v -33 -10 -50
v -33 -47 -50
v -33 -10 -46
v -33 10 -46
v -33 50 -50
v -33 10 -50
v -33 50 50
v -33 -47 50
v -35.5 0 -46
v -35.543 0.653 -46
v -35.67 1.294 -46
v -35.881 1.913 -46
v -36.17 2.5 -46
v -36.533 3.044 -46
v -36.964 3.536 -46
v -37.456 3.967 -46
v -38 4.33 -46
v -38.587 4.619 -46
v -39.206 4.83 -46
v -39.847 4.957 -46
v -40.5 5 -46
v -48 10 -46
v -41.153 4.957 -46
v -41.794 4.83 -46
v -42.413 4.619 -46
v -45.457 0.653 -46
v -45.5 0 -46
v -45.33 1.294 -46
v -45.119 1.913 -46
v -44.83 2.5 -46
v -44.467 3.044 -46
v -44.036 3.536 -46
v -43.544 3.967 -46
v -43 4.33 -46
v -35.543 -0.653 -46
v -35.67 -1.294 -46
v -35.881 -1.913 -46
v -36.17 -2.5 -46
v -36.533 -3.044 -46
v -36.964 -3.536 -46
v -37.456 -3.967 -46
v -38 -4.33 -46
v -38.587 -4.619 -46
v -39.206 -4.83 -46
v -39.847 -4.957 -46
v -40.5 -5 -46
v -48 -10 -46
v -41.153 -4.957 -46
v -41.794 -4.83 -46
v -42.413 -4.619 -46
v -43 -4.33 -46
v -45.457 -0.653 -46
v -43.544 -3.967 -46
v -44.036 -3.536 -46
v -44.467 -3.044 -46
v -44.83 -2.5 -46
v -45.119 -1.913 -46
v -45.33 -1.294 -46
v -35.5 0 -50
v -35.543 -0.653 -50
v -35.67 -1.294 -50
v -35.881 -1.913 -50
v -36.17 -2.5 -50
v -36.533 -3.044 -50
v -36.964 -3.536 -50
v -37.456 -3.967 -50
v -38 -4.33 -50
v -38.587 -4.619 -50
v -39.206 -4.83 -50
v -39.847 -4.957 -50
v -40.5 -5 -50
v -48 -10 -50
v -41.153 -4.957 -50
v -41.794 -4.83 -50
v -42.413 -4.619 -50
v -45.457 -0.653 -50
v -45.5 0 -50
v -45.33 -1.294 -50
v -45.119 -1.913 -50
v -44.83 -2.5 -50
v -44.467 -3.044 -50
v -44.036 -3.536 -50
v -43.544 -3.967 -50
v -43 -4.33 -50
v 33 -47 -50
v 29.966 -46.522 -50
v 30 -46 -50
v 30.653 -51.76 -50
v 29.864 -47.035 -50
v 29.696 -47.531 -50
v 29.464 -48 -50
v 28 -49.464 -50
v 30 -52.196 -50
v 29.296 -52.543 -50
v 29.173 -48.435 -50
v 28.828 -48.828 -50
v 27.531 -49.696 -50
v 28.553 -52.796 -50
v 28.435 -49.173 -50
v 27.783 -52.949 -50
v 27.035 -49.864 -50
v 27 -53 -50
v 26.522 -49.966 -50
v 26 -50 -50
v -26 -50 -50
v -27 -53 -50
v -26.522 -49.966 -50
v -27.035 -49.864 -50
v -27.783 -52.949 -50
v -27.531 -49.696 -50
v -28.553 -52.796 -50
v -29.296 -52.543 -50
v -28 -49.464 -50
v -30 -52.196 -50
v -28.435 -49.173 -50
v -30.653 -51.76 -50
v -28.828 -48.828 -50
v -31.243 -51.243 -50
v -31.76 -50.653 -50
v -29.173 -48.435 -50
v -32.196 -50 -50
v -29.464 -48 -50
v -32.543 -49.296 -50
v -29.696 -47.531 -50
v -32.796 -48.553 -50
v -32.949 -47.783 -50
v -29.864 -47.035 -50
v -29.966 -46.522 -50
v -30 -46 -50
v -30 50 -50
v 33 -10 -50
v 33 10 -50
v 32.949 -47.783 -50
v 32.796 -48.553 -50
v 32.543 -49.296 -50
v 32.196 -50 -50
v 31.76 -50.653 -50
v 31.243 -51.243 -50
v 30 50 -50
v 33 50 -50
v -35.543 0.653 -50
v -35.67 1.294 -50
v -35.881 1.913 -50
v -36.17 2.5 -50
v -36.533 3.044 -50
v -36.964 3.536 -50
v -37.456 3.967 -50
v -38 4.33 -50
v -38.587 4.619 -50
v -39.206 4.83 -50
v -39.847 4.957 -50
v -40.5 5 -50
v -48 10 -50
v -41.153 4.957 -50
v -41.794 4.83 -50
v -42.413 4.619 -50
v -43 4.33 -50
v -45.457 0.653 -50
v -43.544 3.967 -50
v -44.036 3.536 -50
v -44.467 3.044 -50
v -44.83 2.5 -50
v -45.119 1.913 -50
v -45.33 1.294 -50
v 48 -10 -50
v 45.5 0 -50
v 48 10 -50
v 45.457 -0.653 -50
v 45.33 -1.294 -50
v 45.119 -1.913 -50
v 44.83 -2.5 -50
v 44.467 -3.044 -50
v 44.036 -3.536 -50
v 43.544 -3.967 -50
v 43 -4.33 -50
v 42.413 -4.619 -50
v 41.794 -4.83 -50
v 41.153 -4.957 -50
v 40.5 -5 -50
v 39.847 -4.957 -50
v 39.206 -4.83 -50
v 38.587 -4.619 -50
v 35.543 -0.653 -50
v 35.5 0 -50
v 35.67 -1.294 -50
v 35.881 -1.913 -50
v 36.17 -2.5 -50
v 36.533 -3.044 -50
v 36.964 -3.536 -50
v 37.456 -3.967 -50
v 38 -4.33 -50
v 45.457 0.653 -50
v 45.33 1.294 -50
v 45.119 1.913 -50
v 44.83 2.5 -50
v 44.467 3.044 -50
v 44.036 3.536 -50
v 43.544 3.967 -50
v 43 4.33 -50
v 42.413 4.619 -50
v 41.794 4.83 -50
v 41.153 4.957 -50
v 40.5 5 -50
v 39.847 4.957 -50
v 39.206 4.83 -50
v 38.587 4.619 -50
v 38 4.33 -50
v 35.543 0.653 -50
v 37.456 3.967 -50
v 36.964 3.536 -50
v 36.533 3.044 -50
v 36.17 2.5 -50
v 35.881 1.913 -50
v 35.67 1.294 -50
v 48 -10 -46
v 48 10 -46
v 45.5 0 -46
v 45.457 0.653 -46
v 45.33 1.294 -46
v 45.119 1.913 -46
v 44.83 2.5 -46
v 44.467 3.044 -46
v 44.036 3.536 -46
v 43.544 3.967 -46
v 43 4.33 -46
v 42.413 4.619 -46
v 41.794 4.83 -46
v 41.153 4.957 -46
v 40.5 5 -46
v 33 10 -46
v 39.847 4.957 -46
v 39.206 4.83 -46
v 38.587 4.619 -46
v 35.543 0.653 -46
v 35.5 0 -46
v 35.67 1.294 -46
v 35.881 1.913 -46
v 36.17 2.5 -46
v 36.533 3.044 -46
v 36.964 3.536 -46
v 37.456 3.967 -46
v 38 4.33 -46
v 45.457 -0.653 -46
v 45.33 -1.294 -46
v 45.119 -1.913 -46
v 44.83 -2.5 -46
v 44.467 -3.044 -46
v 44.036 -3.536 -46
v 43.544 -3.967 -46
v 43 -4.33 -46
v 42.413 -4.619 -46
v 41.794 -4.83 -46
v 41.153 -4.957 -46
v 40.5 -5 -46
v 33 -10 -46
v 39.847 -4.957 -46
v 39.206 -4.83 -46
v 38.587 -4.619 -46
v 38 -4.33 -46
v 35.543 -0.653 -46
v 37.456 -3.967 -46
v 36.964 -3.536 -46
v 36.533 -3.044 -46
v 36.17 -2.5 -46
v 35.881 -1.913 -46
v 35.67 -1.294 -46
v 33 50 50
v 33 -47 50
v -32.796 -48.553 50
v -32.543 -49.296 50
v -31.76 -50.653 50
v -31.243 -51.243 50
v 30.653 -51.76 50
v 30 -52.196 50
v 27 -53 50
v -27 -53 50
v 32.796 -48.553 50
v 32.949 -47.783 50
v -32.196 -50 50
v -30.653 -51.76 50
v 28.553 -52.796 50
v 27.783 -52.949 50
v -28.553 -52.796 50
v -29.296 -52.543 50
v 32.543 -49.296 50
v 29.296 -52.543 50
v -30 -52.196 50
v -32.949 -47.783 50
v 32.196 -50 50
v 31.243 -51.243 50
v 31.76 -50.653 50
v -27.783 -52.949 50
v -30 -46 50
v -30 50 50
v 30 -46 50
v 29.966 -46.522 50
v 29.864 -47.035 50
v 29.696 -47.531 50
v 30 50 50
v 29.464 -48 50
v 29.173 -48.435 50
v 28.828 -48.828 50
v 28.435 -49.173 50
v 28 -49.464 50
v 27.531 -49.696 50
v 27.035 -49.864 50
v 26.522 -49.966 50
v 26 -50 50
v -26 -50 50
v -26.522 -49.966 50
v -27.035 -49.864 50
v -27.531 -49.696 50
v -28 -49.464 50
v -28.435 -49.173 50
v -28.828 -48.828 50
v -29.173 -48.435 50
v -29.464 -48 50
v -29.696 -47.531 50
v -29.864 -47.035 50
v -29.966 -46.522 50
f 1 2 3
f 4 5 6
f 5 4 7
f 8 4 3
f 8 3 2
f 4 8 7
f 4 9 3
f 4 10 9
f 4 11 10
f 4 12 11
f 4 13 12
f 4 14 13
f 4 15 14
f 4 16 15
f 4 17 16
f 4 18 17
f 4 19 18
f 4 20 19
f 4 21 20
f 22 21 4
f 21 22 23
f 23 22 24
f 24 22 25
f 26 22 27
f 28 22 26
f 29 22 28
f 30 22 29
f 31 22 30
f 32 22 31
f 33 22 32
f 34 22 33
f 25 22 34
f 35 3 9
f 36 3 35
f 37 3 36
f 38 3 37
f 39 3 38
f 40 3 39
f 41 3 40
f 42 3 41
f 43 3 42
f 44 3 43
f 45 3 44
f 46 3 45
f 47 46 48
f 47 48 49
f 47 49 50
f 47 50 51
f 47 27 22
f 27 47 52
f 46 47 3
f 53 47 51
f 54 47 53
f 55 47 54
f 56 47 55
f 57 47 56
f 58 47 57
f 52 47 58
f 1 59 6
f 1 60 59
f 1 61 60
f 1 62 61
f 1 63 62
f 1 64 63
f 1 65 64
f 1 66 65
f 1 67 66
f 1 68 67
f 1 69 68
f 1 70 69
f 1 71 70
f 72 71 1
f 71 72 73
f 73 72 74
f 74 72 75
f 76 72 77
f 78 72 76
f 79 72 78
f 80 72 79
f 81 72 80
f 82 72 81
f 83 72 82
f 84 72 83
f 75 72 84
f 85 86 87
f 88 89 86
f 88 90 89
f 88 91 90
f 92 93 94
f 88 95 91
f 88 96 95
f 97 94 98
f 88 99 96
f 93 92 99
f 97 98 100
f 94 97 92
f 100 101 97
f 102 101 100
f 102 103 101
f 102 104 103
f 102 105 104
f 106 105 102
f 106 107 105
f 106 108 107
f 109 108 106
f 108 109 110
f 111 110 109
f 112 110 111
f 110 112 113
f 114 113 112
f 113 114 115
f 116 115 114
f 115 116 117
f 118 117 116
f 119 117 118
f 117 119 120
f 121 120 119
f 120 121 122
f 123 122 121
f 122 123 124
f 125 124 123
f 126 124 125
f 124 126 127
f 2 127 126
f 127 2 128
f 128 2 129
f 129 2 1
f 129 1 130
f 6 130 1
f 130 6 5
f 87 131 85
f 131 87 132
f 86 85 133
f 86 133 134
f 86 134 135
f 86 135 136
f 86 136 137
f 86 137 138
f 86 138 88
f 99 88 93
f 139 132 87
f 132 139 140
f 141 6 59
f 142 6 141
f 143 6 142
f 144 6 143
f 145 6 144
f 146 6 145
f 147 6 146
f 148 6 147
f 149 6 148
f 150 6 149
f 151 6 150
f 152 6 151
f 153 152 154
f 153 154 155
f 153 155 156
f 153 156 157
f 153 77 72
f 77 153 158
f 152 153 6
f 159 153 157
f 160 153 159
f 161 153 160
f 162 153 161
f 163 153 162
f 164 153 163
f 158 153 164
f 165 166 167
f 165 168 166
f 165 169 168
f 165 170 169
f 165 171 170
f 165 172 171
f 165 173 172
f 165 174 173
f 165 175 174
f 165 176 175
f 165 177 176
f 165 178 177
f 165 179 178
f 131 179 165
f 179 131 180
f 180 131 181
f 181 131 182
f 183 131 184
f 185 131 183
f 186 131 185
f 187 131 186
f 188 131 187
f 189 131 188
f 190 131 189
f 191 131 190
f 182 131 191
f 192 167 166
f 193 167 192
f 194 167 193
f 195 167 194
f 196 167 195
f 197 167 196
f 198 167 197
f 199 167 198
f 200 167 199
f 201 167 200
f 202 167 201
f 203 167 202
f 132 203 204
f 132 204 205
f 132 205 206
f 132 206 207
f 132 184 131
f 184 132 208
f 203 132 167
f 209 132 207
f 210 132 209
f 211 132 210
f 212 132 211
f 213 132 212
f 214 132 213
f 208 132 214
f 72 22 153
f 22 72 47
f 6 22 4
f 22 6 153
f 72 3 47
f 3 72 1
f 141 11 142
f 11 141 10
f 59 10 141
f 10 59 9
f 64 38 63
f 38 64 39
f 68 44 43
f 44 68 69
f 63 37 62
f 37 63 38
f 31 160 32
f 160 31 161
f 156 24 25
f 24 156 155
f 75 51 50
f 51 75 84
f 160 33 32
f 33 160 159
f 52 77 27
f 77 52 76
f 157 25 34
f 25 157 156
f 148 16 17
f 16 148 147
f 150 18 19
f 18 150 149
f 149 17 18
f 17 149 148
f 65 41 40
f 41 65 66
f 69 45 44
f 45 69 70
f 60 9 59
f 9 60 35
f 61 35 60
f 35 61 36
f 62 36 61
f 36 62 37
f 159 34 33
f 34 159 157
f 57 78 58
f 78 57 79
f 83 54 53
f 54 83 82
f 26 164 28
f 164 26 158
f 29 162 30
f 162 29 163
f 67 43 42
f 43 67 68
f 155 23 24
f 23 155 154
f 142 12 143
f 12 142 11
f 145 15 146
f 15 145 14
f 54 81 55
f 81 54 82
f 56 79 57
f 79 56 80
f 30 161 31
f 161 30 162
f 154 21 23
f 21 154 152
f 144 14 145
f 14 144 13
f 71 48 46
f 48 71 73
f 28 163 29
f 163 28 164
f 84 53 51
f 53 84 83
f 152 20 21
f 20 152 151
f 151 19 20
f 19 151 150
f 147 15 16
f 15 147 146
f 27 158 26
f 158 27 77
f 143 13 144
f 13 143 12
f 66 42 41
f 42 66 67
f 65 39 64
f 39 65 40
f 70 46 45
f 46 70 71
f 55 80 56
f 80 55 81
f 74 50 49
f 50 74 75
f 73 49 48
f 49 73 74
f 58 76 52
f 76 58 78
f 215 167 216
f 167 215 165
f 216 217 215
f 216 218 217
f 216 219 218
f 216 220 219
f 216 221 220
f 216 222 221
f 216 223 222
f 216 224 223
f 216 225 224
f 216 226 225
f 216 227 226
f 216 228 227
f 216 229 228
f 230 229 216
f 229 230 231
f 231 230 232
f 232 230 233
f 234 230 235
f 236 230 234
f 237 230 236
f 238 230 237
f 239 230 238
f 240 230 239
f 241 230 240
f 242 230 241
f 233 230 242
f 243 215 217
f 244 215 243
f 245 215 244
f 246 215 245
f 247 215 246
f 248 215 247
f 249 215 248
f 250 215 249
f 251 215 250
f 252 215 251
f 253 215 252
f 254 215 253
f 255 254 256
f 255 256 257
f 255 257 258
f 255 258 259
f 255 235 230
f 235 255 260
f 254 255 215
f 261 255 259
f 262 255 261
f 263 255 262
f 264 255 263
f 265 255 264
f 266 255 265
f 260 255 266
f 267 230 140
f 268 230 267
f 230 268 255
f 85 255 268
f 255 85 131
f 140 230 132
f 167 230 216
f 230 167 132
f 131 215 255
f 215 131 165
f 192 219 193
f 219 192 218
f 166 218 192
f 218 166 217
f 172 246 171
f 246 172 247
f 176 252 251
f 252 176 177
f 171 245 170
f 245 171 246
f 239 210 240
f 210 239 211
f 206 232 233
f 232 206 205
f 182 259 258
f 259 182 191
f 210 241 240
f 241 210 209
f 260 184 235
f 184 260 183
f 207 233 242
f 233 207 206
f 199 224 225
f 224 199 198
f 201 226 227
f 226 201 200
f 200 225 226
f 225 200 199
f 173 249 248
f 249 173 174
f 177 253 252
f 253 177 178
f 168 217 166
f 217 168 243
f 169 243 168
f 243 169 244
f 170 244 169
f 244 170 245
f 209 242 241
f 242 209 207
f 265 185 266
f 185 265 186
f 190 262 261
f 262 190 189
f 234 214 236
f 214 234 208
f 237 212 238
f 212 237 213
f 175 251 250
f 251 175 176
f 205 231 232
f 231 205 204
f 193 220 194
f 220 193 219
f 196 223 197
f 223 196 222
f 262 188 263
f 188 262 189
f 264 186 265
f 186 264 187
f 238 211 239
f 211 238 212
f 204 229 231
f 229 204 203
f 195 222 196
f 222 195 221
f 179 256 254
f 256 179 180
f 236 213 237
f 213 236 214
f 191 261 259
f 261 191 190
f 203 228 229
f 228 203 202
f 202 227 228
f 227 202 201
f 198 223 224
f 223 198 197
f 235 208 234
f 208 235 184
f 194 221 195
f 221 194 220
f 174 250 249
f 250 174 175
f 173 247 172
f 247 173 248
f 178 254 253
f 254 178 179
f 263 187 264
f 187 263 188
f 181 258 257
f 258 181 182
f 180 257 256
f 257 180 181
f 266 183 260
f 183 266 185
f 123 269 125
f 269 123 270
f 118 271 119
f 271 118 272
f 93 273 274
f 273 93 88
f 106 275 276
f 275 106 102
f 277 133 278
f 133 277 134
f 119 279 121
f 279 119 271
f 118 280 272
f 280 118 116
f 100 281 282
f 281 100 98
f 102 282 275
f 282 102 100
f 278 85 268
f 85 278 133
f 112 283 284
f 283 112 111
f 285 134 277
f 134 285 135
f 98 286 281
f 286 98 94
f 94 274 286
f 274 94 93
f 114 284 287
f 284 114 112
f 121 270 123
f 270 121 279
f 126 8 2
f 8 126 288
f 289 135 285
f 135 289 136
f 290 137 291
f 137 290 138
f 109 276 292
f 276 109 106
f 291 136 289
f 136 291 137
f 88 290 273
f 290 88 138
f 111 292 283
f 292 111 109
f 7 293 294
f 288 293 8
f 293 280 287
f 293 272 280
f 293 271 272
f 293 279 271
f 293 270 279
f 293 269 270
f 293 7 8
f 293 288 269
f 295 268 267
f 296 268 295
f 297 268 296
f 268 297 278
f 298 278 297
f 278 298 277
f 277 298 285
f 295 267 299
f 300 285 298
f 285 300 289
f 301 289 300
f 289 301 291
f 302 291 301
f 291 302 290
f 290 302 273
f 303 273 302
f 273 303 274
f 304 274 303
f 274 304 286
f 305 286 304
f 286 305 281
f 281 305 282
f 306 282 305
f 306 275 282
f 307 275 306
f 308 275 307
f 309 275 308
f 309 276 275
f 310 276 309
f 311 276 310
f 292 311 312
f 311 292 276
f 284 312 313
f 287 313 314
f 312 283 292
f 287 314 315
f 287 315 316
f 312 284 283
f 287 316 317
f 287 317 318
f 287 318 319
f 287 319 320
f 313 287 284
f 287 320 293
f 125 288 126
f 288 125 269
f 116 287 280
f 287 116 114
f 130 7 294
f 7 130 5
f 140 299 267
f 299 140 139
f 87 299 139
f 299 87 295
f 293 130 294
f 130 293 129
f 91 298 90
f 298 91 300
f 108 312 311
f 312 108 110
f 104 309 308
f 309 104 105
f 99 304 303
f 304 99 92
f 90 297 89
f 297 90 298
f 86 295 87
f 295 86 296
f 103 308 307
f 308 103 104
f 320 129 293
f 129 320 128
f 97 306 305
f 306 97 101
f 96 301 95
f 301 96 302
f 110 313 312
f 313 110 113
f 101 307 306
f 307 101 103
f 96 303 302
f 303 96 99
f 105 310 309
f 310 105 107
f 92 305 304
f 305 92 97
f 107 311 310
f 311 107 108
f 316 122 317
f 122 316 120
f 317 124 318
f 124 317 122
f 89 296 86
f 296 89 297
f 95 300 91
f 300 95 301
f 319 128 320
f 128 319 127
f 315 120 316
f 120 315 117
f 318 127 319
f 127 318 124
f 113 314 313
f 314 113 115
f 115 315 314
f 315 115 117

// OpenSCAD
// Cradle for the Nerf gun to sit in (open-top tray)
// Export: F6 to render, then File > Export > Export as STL
// All dimensions in mm.

/* [Cavity] */
// Internal cavity the gun sits in
cavity_width  = 60.0;   // X
cavity_height = 100.0;  // Z
cavity_length = 100.0;  // Y

/* [Walls] */
wall_thickness = 3.0;
// No base: the cradle is open at both ends (set > 0 to add a floor)
base_thickness = 0.0;

/* [Corner radii] */
// Radius on the inside corners of the cavity
inner_corner_radius = 4.0;
// Radius on the outside corners of the cradle
outer_corner_radius = 6.0;

/* [Base fillet] */
// Fillet where the cavity floor meets the walls
floor_fillet = 3.0;

/* [Open side] */
// Completely open one of the short sides
open_short_side = true;
// Which short side: -1 = -X, +1 = +X
open_side = 1;

/* [Mounts] */
// Two mounting tabs coming off the bottom edge, one per long wall
mount_tabs     = true;
tab_width      = 20.0;  // along the wall
tab_depth      = 15.0;  // sticking out sideways
tab_thickness  = 4.0;   // vertical thickness
tab_hole_dia   = 10.0;  // 10 mm pipe passes through

/* [Quality] */
$fn = 48;

outer_width  = cavity_width  + 2 * wall_thickness;
outer_length = cavity_length + 2 * wall_thickness;
outer_height = cavity_height + base_thickness;

module rounded_rect(width, length, radius) {
    offset(r = radius) square([width - 2 * radius, length - 2 * radius], center = true);
}

module gun_cradle() {
    difference() {
        // Outer shell with rounded outside corners, squared off at the open end
        union() {
            linear_extrude(height = outer_height, center = true)
                rounded_rect(outer_width, outer_length, outer_corner_radius);
            if (open_short_side) {
                translate([0, open_side * (outer_length / 2 - outer_corner_radius / 2), 0])
                    linear_extrude(height = outer_height, center = true)
                        square([outer_width, outer_corner_radius], center = true);
            }
            // Two mounts coming off the bottom, one on each long wall
            if (mount_tabs) {
                for (x = [-1, 1]) {
                    translate([x * (outer_width / 2 + tab_depth / 2), 0,
                               -outer_height / 2 + tab_thickness / 2])
                        difference() {
                            cube([tab_depth, tab_width, tab_thickness], center = true);
                            cylinder(d = tab_hole_dia, h = tab_thickness + 2, center = true);
                        }
                }
            }
        }

        // Cavity with rounded inside corners, open at the top
        translate([0, 0, base_thickness / 2 + 0.5])
            linear_extrude(height = cavity_height + 1, center = true)
                rounded_rect(cavity_width, cavity_length, inner_corner_radius);

        // Remove one short side (±Y walls, the 60 mm-wide faces) entirely
        if (open_short_side) {
            translate([0, open_side * (cavity_length / 2 + wall_thickness / 2 + 0.5), 0])
                cube([outer_width + 2, wall_thickness + 1, outer_height + 2], center = true);
            // Square the inner cavity corners at the open end as well
            translate([0, open_side * (cavity_length / 2 - inner_corner_radius / 2), 0])
                linear_extrude(height = cavity_height + 2, center = true)
                    square([cavity_width, inner_corner_radius], center = true);
        }
    }
}

gun_cradle();
